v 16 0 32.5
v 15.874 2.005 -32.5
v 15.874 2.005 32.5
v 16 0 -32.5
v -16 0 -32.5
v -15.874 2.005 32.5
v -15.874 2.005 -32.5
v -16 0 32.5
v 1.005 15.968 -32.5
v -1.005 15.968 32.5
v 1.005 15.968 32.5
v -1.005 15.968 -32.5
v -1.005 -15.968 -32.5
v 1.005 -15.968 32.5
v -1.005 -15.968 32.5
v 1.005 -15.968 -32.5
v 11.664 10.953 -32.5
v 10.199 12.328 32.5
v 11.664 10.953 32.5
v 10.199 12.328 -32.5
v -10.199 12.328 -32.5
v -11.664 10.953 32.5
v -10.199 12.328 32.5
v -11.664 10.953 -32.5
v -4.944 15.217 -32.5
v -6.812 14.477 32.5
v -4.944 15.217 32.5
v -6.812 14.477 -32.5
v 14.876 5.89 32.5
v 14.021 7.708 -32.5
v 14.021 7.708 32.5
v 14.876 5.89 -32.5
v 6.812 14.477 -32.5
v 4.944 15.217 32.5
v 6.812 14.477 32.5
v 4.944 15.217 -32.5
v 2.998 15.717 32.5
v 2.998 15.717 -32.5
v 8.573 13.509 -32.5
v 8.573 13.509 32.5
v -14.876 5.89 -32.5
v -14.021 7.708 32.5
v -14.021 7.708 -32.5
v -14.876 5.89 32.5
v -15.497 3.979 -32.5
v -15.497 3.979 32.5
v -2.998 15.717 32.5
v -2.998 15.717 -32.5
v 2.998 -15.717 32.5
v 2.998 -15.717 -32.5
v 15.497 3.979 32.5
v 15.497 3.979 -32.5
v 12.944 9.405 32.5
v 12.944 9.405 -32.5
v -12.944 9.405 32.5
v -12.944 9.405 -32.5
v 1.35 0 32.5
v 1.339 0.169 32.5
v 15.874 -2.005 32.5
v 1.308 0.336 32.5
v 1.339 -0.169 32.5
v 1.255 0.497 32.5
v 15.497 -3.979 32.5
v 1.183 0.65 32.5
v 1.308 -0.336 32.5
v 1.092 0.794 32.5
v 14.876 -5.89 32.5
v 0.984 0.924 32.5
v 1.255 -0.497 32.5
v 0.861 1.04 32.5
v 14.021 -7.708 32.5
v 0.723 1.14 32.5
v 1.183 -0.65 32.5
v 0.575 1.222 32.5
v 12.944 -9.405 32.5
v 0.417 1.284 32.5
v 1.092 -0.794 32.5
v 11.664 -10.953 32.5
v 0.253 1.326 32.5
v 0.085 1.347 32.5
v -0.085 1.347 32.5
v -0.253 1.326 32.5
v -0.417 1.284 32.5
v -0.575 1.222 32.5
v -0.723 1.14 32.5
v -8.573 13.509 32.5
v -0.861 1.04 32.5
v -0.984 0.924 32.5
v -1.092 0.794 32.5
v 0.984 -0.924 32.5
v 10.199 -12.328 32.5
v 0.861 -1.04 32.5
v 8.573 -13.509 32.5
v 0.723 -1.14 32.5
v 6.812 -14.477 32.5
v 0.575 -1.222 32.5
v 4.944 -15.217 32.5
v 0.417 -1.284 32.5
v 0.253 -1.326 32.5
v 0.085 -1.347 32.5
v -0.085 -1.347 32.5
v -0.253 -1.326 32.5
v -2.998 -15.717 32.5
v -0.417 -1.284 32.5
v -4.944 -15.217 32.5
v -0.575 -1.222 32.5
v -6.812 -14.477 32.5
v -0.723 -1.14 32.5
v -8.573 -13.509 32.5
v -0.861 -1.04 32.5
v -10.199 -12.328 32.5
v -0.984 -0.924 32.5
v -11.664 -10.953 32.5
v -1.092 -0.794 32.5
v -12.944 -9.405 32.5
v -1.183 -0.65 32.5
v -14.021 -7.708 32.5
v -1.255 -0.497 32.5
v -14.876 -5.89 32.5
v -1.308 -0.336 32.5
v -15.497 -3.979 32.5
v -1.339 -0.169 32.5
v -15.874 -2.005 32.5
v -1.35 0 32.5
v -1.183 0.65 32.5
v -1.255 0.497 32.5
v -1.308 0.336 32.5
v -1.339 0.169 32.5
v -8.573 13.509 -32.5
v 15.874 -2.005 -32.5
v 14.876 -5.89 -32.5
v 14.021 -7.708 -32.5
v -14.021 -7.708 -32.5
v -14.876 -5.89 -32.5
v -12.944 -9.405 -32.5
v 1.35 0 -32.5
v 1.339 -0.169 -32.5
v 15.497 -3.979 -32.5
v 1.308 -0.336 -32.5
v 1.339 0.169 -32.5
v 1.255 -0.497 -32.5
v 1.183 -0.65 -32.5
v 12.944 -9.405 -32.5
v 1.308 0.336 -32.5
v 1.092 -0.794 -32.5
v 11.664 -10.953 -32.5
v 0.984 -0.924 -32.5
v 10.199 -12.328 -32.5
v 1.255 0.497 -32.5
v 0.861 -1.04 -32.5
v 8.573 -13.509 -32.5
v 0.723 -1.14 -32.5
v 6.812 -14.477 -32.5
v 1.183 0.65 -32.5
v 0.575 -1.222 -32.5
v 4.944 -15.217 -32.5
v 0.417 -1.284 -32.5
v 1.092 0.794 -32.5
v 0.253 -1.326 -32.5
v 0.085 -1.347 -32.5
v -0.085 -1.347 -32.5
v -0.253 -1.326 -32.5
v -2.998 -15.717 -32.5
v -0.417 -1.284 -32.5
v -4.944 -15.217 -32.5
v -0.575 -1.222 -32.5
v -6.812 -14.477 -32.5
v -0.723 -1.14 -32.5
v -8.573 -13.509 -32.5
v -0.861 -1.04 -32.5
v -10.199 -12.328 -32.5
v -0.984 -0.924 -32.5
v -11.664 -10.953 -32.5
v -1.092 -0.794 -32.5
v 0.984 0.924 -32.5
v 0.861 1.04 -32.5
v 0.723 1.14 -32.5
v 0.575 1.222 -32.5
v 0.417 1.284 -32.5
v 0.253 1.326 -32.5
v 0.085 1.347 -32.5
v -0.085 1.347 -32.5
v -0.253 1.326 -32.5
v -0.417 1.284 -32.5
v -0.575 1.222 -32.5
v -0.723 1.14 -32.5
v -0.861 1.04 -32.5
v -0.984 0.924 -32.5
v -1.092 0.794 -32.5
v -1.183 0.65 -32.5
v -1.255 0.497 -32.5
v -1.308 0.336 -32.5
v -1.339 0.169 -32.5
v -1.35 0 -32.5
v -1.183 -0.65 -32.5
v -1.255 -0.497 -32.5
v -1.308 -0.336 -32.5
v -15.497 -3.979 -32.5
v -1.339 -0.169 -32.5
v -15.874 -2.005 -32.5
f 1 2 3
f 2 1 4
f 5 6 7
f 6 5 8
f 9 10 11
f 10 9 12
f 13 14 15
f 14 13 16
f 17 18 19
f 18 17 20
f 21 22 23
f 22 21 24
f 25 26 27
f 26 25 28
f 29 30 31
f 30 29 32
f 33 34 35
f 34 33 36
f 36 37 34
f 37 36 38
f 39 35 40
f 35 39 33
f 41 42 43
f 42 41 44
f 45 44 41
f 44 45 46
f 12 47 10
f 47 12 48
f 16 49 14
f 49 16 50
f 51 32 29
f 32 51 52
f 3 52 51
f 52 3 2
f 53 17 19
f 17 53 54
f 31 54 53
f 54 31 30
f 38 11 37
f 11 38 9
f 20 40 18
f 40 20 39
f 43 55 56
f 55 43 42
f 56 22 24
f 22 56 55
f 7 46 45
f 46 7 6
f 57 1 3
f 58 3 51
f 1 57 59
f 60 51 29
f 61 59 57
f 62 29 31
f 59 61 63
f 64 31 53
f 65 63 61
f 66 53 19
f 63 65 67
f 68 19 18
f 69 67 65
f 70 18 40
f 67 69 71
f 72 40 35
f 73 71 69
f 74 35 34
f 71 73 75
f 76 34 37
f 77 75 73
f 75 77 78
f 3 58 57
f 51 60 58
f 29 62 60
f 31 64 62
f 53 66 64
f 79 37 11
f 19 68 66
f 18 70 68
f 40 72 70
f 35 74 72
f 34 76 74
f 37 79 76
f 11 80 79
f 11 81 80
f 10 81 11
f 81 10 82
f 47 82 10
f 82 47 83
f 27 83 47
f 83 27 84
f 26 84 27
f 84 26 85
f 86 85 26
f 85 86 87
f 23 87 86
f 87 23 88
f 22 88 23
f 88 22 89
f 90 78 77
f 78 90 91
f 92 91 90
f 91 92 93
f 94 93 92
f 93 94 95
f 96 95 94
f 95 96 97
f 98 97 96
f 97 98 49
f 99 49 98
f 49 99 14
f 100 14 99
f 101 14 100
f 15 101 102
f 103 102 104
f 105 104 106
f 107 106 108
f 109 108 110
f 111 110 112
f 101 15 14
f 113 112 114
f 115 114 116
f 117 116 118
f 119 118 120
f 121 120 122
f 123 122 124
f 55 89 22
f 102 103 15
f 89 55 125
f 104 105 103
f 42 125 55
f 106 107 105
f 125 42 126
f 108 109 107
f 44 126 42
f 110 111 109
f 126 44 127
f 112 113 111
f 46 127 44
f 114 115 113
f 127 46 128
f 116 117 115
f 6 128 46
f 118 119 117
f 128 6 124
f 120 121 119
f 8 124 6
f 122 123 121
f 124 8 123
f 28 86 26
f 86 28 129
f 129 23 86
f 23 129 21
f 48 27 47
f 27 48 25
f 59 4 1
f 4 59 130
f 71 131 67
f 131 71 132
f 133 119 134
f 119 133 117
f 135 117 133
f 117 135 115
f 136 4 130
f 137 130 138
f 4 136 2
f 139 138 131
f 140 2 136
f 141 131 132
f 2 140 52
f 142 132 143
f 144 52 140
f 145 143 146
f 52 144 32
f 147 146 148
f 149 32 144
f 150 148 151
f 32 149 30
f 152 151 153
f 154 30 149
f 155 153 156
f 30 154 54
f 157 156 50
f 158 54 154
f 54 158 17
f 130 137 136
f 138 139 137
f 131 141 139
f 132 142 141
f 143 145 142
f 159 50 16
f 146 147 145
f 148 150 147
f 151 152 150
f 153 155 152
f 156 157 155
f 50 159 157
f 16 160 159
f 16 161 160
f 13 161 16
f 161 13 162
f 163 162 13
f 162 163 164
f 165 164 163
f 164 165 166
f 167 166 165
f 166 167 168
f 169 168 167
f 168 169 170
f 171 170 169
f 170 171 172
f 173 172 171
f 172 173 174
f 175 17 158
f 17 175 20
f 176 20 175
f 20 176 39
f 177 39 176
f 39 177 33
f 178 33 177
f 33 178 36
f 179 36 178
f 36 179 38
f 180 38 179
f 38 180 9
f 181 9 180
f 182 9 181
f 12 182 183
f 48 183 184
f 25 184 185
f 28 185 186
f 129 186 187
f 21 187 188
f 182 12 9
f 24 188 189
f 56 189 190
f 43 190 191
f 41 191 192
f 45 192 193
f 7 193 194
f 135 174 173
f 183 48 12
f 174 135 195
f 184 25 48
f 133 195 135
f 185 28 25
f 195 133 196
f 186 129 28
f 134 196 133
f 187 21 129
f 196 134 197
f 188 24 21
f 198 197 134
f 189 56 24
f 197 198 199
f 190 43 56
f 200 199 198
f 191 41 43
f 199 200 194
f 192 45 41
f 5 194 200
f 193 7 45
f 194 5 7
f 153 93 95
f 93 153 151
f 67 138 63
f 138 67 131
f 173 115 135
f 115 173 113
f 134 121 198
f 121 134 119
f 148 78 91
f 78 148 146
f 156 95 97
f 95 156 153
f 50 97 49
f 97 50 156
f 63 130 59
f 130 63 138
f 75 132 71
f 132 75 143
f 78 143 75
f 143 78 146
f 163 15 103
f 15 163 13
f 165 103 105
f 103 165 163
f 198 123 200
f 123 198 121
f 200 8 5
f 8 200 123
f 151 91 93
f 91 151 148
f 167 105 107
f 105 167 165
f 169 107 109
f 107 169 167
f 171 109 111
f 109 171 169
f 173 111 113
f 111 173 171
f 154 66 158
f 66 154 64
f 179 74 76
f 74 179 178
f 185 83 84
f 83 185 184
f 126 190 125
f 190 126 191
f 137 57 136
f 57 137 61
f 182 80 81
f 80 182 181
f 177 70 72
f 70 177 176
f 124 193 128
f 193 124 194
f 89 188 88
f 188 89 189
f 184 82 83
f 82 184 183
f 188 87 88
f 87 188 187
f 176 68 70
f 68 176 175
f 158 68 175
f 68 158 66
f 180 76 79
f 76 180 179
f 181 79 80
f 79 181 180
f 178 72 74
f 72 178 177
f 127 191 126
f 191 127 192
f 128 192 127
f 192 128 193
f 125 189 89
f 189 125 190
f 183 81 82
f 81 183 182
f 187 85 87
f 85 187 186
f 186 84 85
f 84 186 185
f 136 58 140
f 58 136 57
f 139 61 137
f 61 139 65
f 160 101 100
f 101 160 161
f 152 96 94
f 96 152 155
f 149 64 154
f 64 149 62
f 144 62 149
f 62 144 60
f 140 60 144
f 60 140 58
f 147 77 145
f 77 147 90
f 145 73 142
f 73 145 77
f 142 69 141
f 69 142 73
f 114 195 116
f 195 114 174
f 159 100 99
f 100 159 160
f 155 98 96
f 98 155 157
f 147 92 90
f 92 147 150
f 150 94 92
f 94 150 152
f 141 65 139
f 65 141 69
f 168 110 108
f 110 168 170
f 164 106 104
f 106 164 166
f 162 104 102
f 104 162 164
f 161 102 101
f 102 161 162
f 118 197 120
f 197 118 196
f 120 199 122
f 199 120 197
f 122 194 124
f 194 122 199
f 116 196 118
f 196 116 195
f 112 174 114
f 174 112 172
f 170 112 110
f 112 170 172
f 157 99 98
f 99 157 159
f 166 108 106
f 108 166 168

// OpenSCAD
$fn = 50;


difference() {
	union() {
		translate(v = [0, 0, -32.5000000000]) {
			cylinder(h = 65, r = 16.0000000000);
		}
	}
	union() {
		translate(v = [0, 0, -100.0000000000]) {
			cylinder(h = 200, r = 1.3500000000);
		}
	}
}
